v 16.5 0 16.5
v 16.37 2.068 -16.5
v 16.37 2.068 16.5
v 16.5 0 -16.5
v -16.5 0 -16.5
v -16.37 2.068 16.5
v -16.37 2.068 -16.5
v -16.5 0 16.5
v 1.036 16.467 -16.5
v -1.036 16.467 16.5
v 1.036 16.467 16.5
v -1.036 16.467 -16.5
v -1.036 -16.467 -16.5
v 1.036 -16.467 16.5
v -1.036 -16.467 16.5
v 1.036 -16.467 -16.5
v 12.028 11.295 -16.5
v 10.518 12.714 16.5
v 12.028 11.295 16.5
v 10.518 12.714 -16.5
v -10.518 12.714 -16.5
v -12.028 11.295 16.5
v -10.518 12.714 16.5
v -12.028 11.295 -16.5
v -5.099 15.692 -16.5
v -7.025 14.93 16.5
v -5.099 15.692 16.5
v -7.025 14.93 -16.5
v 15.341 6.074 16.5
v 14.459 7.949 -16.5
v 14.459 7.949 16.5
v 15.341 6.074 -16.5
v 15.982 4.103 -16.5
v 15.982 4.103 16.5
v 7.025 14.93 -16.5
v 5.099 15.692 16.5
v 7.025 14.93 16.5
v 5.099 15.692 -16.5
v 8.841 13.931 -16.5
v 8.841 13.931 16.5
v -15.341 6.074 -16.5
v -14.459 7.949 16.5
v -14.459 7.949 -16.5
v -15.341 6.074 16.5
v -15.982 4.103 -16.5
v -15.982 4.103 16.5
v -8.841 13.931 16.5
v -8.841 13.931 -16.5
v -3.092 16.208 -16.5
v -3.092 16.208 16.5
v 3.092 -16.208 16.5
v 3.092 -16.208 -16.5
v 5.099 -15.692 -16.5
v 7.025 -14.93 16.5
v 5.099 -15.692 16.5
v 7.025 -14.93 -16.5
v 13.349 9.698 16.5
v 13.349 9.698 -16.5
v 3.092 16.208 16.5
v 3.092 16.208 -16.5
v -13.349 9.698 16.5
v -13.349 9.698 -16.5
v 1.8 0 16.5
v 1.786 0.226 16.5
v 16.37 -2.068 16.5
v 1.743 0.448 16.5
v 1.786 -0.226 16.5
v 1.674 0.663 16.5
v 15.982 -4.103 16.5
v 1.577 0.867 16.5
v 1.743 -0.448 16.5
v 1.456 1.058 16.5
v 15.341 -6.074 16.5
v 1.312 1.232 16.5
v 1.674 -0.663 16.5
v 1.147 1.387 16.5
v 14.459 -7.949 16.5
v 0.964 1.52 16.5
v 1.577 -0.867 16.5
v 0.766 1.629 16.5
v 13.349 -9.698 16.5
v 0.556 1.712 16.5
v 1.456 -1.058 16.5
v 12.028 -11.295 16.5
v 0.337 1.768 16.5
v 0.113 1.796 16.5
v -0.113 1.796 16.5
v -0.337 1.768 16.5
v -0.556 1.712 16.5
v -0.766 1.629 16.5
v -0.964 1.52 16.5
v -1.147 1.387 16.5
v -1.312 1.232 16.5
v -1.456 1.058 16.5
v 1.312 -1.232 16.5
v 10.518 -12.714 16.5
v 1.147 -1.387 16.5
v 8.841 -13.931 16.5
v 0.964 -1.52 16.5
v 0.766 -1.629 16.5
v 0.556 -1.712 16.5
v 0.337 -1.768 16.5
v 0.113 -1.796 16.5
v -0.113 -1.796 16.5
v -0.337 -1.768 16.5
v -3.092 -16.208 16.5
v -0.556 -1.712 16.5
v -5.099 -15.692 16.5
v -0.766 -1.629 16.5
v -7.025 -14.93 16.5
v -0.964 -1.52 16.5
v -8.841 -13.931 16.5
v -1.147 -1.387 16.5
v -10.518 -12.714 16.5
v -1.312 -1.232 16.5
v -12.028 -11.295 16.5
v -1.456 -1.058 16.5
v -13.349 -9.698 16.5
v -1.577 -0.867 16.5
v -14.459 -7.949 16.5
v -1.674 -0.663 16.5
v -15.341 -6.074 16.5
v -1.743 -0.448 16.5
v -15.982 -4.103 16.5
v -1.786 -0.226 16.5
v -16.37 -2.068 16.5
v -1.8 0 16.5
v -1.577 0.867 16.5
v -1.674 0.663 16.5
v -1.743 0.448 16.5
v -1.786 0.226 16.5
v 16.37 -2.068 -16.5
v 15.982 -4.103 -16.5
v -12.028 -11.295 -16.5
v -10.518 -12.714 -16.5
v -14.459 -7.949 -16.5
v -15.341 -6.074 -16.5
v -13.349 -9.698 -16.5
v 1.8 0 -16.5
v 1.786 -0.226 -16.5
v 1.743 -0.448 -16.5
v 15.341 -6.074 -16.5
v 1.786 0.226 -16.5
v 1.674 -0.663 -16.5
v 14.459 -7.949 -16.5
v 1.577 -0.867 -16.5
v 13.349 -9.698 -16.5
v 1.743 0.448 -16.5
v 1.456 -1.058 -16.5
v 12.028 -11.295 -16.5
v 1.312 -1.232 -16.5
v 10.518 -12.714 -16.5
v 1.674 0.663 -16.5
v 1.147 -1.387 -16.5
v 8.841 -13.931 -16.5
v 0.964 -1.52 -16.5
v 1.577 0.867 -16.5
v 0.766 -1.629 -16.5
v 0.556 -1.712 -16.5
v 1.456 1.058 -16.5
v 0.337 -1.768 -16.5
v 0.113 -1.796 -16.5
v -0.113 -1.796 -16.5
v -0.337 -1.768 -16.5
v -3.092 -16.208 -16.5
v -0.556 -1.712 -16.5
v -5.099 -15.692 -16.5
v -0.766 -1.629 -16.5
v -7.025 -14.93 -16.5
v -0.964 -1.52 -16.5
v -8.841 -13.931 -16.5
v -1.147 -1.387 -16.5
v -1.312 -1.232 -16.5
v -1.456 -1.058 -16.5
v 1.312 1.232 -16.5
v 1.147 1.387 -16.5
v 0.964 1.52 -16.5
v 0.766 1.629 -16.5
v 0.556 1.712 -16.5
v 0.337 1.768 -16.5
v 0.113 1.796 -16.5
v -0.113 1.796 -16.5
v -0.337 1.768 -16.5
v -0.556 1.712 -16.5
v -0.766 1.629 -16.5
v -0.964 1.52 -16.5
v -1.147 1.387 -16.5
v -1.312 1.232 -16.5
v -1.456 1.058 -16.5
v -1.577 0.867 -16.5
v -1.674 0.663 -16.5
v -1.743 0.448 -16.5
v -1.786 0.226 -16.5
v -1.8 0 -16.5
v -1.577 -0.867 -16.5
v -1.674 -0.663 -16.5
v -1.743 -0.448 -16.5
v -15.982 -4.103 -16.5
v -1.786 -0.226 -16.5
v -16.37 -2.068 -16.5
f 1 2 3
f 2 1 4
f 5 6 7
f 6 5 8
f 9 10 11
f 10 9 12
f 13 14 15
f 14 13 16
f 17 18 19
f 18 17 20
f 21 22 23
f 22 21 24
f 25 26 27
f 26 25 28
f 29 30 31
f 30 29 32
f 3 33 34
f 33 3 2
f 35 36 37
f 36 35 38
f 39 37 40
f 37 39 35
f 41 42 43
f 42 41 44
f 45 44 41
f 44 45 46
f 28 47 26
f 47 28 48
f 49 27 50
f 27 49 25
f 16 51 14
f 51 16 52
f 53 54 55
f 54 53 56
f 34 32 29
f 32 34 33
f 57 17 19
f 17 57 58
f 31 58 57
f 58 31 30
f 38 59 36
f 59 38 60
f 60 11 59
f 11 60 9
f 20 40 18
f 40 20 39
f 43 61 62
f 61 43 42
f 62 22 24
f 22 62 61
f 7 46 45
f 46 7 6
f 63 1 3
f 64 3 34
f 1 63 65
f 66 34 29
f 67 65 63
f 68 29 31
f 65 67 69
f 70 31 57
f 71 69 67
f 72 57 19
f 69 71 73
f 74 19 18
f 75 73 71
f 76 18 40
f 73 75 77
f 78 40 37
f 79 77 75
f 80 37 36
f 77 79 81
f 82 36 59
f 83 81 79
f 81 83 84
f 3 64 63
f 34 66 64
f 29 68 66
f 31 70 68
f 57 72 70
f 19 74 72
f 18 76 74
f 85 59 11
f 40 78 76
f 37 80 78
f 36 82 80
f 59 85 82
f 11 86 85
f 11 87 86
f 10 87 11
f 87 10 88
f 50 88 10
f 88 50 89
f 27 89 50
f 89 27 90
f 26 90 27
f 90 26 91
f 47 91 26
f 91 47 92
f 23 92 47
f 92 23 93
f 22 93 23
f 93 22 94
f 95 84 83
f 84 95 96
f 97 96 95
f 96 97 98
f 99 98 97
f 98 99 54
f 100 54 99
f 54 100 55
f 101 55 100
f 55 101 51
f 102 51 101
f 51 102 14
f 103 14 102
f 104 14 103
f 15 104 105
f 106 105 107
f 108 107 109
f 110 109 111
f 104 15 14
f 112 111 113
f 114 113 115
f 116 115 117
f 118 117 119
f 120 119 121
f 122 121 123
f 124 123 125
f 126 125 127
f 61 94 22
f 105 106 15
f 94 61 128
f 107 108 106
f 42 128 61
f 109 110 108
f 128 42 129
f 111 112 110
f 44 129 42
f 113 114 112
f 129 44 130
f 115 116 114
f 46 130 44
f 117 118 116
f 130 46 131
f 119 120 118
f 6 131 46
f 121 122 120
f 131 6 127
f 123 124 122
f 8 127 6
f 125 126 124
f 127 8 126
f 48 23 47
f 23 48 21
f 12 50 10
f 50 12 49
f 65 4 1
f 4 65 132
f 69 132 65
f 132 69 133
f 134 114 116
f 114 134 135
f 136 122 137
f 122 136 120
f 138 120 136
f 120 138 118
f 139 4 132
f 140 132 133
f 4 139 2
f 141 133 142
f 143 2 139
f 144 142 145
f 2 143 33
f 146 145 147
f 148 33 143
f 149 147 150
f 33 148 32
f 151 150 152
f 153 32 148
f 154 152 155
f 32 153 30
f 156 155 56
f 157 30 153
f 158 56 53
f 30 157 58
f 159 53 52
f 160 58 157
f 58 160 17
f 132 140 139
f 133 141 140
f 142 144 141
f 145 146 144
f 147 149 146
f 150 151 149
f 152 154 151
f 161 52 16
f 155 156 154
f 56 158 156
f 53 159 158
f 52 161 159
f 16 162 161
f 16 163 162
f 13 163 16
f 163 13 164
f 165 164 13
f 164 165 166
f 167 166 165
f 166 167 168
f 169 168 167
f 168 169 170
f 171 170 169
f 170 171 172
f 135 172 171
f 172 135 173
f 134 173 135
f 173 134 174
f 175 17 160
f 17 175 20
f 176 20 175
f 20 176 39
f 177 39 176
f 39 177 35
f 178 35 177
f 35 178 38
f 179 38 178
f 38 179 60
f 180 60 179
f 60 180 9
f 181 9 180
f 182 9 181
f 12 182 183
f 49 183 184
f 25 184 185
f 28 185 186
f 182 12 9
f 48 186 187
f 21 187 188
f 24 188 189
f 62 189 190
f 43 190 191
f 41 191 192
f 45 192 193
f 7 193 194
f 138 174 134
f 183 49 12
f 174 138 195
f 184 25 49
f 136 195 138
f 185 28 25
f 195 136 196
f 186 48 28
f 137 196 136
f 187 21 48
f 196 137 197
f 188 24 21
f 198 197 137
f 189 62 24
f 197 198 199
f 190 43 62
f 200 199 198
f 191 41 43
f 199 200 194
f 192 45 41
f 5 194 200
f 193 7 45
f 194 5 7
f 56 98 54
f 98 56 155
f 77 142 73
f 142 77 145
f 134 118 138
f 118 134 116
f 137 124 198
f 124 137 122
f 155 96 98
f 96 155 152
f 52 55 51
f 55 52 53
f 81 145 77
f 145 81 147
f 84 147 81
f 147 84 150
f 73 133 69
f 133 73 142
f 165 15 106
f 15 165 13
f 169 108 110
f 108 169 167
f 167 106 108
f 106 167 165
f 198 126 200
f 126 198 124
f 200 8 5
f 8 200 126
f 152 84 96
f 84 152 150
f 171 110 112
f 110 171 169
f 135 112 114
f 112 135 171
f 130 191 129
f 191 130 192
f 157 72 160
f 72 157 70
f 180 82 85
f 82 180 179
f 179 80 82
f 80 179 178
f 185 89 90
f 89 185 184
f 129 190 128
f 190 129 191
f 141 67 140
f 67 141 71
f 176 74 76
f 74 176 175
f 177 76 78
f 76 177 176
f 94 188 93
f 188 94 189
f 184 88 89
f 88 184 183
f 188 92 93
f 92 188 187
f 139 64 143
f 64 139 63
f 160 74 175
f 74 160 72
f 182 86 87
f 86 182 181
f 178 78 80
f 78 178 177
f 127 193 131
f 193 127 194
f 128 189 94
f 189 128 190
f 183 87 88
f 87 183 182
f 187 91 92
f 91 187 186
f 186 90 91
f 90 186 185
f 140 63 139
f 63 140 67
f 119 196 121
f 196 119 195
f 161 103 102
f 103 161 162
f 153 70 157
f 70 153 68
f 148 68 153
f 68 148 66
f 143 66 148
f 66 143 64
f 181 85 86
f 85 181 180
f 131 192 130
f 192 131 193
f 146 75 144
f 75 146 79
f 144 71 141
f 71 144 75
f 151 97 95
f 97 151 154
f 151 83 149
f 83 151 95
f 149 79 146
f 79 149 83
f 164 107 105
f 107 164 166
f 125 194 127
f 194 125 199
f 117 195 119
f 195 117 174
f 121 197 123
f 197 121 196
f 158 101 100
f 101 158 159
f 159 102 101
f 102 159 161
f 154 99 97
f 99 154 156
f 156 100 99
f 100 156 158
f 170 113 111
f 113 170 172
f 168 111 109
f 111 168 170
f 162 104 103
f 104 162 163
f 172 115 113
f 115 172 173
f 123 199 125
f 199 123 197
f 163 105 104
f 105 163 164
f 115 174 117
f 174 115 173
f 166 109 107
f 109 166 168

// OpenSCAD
$fn = 50;


difference() {
	union() {
		translate(v = [0, 0, -16.5000000000]) {
			cylinder(h = 33, r = 16.5000000000);
		}
	}
	union() {
		translate(v = [0, 0, -100.0000000000]) {
			cylinder(h = 200, r = 1.8000000000);
		}
	}
}
